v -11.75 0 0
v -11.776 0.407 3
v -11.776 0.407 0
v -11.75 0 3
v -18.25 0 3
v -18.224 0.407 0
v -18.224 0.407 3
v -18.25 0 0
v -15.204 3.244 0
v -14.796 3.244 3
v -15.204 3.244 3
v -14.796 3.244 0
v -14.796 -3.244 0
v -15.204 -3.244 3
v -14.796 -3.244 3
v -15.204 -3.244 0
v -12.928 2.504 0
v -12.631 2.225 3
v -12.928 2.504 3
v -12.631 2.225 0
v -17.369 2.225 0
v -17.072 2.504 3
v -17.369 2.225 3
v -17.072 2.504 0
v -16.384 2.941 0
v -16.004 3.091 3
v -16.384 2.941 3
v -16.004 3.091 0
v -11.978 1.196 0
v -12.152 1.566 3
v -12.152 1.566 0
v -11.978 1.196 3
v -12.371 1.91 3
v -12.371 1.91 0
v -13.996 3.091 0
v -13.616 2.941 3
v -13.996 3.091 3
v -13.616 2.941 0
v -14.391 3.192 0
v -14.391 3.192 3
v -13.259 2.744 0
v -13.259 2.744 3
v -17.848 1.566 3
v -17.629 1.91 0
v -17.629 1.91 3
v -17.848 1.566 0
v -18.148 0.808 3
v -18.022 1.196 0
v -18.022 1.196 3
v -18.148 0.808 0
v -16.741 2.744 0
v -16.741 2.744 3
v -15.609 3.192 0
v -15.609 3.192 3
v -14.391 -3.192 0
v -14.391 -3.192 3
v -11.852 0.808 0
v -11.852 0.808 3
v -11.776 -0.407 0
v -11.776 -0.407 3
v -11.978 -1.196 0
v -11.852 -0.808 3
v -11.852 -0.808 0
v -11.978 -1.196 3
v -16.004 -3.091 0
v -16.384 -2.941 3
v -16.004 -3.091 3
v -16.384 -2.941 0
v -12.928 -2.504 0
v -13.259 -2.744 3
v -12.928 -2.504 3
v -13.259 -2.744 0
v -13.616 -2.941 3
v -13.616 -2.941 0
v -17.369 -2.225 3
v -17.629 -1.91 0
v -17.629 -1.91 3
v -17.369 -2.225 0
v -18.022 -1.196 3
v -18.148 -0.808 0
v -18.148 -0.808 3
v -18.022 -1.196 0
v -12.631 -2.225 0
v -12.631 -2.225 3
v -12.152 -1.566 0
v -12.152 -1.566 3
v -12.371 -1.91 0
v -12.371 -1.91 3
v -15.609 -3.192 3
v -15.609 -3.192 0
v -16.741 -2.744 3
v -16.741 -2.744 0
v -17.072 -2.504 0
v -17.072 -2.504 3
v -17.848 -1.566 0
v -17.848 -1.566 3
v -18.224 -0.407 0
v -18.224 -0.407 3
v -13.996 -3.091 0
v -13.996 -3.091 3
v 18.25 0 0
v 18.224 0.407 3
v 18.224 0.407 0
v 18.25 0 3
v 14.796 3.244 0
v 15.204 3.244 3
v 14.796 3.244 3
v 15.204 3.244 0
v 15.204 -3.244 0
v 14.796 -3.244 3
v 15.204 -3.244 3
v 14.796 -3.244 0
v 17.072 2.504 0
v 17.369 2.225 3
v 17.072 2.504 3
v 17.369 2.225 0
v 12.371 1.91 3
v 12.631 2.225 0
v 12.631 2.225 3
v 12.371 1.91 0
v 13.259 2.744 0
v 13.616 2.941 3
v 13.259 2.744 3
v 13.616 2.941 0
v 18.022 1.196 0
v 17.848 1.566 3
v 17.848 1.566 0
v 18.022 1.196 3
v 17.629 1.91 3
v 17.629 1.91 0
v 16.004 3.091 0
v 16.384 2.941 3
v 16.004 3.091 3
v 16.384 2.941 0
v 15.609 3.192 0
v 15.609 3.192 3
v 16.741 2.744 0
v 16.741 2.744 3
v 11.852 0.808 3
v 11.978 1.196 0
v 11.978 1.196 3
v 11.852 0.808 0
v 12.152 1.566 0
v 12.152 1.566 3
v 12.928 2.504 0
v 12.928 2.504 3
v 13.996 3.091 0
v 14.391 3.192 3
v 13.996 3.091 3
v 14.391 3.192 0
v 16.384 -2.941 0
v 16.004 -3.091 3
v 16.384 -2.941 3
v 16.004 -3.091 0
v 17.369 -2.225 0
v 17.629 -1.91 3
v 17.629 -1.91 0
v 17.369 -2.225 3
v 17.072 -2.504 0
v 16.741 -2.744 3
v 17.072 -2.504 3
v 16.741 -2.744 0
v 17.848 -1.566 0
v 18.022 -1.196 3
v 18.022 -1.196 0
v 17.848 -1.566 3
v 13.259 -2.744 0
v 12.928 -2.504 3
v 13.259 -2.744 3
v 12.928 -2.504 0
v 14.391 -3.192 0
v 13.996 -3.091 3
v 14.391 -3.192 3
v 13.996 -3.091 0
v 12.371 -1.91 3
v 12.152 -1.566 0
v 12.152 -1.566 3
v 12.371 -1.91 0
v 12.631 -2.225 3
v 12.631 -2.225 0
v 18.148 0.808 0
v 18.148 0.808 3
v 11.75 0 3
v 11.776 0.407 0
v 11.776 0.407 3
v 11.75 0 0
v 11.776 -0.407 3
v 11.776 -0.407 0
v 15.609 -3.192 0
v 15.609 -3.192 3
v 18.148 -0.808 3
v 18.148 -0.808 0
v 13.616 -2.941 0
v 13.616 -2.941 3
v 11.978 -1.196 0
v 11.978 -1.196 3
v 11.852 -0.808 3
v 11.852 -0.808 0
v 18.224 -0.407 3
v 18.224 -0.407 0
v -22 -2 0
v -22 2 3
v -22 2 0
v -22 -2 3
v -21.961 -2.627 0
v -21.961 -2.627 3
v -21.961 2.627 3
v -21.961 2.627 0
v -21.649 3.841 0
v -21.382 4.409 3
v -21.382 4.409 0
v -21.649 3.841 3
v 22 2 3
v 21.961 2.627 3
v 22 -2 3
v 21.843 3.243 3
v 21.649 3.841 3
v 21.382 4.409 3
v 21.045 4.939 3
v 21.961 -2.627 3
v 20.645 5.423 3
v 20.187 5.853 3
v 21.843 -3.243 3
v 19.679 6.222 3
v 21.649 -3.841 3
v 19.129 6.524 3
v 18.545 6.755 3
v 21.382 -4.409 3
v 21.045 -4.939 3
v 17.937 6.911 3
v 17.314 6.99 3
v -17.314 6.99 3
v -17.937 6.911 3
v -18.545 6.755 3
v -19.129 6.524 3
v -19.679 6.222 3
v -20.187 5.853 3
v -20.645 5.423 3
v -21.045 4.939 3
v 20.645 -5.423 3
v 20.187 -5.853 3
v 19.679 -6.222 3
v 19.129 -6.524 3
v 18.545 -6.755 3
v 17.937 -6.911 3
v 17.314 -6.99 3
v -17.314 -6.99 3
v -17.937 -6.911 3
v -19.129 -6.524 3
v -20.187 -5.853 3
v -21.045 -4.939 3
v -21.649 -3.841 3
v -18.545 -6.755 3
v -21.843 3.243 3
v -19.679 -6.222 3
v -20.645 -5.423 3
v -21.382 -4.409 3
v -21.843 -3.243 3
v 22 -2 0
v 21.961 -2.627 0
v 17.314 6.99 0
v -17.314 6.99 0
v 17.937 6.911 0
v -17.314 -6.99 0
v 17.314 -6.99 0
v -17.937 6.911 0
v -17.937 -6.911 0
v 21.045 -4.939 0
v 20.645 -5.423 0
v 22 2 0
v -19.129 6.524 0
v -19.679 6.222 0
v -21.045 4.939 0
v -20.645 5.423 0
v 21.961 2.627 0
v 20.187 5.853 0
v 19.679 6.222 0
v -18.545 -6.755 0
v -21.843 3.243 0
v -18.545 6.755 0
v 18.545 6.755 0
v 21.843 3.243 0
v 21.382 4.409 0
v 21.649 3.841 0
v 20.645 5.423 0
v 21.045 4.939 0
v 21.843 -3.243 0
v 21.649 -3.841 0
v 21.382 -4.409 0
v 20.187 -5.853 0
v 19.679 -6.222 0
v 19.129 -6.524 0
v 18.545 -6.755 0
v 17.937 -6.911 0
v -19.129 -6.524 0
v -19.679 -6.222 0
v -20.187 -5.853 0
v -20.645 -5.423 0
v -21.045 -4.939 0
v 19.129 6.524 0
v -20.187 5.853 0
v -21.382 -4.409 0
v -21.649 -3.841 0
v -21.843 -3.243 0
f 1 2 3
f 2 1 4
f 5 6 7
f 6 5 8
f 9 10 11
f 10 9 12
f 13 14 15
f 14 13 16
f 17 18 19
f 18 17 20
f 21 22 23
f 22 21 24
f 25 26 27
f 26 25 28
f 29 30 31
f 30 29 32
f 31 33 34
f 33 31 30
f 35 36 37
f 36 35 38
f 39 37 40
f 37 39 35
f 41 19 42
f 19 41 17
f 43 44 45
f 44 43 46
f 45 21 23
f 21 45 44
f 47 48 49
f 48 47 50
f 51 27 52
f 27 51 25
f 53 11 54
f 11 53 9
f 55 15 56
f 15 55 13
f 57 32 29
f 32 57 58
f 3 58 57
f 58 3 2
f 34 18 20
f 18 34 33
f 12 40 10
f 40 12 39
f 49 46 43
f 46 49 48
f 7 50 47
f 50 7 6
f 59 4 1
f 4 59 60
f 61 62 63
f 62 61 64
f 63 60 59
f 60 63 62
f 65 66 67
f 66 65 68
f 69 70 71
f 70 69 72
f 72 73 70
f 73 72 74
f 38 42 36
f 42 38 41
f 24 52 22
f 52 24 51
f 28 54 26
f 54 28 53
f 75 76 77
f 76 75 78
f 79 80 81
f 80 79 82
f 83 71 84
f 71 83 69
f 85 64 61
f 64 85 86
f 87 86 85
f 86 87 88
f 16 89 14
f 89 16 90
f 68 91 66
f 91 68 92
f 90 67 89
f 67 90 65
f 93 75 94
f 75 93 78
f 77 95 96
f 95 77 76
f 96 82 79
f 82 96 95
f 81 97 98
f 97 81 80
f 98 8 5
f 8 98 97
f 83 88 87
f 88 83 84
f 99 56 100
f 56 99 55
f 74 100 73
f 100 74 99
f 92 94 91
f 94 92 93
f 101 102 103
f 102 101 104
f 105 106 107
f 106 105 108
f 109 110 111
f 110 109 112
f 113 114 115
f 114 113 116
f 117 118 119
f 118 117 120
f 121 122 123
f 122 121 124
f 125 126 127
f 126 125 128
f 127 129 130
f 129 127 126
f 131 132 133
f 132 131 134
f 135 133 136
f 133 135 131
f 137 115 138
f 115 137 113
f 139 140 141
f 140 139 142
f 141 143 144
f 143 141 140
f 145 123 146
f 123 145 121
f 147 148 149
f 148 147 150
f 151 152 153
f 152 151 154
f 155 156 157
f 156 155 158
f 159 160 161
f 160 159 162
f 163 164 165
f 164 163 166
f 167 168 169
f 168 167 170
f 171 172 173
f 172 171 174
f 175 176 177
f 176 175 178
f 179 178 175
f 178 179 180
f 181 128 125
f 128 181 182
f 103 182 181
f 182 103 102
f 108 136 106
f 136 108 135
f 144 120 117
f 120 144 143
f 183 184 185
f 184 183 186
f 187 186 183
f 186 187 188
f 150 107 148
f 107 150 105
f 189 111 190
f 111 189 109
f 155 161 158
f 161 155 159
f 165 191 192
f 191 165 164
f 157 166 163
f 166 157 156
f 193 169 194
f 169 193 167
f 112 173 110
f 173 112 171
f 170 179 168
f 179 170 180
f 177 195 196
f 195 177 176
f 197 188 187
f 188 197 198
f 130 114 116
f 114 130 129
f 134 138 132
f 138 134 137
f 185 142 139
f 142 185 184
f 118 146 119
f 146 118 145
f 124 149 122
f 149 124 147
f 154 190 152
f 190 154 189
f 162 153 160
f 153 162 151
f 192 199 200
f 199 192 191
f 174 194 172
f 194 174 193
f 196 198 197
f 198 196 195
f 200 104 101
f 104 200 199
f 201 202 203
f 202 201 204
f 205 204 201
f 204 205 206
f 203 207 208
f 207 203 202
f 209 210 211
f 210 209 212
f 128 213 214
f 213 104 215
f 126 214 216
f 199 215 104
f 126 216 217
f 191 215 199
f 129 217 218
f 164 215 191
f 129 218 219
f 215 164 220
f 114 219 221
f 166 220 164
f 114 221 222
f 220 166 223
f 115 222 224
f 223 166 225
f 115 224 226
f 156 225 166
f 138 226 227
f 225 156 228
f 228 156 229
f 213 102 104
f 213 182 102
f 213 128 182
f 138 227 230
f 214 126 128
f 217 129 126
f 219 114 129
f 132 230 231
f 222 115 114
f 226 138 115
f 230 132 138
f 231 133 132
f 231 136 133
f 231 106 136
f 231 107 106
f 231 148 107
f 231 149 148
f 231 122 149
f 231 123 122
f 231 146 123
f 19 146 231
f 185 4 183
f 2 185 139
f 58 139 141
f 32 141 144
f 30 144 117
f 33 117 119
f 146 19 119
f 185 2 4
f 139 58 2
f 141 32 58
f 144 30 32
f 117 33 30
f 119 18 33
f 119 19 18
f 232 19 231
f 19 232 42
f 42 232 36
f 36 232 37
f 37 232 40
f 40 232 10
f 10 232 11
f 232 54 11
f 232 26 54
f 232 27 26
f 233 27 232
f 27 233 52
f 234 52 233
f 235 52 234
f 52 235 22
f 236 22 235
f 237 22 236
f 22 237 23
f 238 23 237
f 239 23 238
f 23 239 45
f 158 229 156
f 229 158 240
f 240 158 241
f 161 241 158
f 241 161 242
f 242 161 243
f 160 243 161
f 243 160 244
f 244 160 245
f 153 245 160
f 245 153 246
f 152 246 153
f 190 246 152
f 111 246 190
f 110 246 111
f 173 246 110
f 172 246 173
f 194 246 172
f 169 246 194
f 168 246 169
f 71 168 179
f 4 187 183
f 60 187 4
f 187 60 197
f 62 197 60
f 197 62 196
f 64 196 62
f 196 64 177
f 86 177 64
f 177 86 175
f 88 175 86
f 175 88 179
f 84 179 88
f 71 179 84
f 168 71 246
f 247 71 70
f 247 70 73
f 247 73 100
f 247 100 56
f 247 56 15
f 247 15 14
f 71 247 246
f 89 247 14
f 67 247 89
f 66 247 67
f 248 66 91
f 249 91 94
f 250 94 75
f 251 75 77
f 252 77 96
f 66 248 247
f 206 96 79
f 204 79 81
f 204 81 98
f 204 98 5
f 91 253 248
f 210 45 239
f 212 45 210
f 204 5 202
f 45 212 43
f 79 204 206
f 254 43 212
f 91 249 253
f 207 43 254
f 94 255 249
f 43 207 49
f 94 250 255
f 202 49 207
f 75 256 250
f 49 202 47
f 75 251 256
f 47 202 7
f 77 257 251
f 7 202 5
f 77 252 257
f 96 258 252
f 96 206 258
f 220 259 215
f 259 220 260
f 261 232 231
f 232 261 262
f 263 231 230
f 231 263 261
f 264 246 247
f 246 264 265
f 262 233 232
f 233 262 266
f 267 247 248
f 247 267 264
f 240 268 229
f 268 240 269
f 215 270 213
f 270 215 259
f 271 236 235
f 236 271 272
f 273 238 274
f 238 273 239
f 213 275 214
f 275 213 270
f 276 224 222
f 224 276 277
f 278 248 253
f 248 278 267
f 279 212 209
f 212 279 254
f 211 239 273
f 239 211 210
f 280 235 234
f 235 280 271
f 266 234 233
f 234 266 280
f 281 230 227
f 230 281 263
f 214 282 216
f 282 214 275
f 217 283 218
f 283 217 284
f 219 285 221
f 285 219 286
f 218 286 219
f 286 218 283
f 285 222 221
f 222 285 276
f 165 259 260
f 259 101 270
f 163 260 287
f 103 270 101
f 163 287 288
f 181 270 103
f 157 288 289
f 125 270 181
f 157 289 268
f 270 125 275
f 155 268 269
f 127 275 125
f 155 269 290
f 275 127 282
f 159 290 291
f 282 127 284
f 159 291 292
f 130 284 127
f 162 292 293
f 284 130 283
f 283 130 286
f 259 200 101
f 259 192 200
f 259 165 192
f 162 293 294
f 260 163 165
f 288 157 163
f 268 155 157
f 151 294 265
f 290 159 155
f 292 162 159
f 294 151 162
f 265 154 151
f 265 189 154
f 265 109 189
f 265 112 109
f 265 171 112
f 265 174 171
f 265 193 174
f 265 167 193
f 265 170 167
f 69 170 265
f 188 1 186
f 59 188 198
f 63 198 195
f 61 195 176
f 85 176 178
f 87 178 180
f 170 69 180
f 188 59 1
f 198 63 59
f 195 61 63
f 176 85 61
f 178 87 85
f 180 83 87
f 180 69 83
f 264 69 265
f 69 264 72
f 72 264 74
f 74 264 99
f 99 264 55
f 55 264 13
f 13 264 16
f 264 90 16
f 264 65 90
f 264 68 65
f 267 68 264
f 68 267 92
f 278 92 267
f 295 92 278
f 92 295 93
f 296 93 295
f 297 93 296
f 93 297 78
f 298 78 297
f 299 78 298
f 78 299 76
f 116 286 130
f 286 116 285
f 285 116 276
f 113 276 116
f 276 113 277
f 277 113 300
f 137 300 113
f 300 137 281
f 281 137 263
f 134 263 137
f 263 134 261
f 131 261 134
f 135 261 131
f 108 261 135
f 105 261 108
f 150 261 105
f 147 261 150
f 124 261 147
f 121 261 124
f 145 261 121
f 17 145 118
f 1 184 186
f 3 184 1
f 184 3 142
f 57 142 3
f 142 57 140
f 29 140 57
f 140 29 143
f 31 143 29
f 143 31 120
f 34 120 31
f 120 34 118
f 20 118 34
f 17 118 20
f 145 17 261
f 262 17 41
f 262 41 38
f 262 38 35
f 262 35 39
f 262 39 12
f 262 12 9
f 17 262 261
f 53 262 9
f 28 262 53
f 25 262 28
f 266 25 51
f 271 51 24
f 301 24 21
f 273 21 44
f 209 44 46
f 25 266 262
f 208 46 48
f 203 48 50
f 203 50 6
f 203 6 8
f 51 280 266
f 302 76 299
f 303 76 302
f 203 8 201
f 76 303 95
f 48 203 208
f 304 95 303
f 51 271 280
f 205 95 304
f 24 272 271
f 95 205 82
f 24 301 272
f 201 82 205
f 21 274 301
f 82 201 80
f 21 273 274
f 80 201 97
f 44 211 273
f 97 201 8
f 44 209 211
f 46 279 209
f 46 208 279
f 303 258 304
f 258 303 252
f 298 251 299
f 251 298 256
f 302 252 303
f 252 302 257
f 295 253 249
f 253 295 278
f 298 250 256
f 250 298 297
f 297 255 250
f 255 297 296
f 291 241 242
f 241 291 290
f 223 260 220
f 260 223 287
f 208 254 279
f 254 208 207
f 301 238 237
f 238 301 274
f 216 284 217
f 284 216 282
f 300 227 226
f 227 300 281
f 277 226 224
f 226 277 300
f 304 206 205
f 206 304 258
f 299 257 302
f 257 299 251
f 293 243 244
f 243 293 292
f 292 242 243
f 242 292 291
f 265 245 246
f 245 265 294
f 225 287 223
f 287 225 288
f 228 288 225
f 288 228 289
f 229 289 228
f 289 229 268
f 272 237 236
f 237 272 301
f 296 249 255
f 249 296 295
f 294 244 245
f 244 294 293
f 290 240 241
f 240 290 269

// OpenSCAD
$fn = 50;


difference() {
	union() {
		hull() {
			translate(v = [-17.0000000000, 2.0000000000, 0]) {
				cylinder(h = 3, r = 5);
			}
			translate(v = [17.0000000000, 2.0000000000, 0]) {
				cylinder(h = 3, r = 5);
			}
			translate(v = [-17.0000000000, -2.0000000000, 0]) {
				cylinder(h = 3, r = 5);
			}
			translate(v = [17.0000000000, -2.0000000000, 0]) {
				cylinder(h = 3, r = 5);
			}
		}
	}
	union() {
		translate(v = [-15.0000000000, 0.0000000000, 0]) {
			cylinder(h = 3, r = 3.2500000000);
		}
		translate(v = [15.0000000000, 0.0000000000, 0]) {
			cylinder(h = 3, r = 3.2500000000);
		}
		translate(v = [-15.0000000000, 0.0000000000, 0]) {
			cylinder(h = 3, r = 1.8000000000);
		}
		translate(v = [15.0000000000, 0.0000000000, 0]) {
			cylinder(h = 3, r = 1.8000000000);
		}
		translate(v = [-15.0000000000, 0.0000000000, 0]) {
			cylinder(h = 3, r = 1.8000000000);
		}
		translate(v = [15.0000000000, 0.0000000000, 0]) {
			cylinder(h = 3, r = 1.8000000000);
		}
		translate(v = [-15.0000000000, 0.0000000000, 0]) {
			cylinder(h = 3, r = 1.8000000000);
		}
		translate(v = [15.0000000000, 0.0000000000, 0]) {
			cylinder(h = 3, r = 1.8000000000);
		}
	}
}
